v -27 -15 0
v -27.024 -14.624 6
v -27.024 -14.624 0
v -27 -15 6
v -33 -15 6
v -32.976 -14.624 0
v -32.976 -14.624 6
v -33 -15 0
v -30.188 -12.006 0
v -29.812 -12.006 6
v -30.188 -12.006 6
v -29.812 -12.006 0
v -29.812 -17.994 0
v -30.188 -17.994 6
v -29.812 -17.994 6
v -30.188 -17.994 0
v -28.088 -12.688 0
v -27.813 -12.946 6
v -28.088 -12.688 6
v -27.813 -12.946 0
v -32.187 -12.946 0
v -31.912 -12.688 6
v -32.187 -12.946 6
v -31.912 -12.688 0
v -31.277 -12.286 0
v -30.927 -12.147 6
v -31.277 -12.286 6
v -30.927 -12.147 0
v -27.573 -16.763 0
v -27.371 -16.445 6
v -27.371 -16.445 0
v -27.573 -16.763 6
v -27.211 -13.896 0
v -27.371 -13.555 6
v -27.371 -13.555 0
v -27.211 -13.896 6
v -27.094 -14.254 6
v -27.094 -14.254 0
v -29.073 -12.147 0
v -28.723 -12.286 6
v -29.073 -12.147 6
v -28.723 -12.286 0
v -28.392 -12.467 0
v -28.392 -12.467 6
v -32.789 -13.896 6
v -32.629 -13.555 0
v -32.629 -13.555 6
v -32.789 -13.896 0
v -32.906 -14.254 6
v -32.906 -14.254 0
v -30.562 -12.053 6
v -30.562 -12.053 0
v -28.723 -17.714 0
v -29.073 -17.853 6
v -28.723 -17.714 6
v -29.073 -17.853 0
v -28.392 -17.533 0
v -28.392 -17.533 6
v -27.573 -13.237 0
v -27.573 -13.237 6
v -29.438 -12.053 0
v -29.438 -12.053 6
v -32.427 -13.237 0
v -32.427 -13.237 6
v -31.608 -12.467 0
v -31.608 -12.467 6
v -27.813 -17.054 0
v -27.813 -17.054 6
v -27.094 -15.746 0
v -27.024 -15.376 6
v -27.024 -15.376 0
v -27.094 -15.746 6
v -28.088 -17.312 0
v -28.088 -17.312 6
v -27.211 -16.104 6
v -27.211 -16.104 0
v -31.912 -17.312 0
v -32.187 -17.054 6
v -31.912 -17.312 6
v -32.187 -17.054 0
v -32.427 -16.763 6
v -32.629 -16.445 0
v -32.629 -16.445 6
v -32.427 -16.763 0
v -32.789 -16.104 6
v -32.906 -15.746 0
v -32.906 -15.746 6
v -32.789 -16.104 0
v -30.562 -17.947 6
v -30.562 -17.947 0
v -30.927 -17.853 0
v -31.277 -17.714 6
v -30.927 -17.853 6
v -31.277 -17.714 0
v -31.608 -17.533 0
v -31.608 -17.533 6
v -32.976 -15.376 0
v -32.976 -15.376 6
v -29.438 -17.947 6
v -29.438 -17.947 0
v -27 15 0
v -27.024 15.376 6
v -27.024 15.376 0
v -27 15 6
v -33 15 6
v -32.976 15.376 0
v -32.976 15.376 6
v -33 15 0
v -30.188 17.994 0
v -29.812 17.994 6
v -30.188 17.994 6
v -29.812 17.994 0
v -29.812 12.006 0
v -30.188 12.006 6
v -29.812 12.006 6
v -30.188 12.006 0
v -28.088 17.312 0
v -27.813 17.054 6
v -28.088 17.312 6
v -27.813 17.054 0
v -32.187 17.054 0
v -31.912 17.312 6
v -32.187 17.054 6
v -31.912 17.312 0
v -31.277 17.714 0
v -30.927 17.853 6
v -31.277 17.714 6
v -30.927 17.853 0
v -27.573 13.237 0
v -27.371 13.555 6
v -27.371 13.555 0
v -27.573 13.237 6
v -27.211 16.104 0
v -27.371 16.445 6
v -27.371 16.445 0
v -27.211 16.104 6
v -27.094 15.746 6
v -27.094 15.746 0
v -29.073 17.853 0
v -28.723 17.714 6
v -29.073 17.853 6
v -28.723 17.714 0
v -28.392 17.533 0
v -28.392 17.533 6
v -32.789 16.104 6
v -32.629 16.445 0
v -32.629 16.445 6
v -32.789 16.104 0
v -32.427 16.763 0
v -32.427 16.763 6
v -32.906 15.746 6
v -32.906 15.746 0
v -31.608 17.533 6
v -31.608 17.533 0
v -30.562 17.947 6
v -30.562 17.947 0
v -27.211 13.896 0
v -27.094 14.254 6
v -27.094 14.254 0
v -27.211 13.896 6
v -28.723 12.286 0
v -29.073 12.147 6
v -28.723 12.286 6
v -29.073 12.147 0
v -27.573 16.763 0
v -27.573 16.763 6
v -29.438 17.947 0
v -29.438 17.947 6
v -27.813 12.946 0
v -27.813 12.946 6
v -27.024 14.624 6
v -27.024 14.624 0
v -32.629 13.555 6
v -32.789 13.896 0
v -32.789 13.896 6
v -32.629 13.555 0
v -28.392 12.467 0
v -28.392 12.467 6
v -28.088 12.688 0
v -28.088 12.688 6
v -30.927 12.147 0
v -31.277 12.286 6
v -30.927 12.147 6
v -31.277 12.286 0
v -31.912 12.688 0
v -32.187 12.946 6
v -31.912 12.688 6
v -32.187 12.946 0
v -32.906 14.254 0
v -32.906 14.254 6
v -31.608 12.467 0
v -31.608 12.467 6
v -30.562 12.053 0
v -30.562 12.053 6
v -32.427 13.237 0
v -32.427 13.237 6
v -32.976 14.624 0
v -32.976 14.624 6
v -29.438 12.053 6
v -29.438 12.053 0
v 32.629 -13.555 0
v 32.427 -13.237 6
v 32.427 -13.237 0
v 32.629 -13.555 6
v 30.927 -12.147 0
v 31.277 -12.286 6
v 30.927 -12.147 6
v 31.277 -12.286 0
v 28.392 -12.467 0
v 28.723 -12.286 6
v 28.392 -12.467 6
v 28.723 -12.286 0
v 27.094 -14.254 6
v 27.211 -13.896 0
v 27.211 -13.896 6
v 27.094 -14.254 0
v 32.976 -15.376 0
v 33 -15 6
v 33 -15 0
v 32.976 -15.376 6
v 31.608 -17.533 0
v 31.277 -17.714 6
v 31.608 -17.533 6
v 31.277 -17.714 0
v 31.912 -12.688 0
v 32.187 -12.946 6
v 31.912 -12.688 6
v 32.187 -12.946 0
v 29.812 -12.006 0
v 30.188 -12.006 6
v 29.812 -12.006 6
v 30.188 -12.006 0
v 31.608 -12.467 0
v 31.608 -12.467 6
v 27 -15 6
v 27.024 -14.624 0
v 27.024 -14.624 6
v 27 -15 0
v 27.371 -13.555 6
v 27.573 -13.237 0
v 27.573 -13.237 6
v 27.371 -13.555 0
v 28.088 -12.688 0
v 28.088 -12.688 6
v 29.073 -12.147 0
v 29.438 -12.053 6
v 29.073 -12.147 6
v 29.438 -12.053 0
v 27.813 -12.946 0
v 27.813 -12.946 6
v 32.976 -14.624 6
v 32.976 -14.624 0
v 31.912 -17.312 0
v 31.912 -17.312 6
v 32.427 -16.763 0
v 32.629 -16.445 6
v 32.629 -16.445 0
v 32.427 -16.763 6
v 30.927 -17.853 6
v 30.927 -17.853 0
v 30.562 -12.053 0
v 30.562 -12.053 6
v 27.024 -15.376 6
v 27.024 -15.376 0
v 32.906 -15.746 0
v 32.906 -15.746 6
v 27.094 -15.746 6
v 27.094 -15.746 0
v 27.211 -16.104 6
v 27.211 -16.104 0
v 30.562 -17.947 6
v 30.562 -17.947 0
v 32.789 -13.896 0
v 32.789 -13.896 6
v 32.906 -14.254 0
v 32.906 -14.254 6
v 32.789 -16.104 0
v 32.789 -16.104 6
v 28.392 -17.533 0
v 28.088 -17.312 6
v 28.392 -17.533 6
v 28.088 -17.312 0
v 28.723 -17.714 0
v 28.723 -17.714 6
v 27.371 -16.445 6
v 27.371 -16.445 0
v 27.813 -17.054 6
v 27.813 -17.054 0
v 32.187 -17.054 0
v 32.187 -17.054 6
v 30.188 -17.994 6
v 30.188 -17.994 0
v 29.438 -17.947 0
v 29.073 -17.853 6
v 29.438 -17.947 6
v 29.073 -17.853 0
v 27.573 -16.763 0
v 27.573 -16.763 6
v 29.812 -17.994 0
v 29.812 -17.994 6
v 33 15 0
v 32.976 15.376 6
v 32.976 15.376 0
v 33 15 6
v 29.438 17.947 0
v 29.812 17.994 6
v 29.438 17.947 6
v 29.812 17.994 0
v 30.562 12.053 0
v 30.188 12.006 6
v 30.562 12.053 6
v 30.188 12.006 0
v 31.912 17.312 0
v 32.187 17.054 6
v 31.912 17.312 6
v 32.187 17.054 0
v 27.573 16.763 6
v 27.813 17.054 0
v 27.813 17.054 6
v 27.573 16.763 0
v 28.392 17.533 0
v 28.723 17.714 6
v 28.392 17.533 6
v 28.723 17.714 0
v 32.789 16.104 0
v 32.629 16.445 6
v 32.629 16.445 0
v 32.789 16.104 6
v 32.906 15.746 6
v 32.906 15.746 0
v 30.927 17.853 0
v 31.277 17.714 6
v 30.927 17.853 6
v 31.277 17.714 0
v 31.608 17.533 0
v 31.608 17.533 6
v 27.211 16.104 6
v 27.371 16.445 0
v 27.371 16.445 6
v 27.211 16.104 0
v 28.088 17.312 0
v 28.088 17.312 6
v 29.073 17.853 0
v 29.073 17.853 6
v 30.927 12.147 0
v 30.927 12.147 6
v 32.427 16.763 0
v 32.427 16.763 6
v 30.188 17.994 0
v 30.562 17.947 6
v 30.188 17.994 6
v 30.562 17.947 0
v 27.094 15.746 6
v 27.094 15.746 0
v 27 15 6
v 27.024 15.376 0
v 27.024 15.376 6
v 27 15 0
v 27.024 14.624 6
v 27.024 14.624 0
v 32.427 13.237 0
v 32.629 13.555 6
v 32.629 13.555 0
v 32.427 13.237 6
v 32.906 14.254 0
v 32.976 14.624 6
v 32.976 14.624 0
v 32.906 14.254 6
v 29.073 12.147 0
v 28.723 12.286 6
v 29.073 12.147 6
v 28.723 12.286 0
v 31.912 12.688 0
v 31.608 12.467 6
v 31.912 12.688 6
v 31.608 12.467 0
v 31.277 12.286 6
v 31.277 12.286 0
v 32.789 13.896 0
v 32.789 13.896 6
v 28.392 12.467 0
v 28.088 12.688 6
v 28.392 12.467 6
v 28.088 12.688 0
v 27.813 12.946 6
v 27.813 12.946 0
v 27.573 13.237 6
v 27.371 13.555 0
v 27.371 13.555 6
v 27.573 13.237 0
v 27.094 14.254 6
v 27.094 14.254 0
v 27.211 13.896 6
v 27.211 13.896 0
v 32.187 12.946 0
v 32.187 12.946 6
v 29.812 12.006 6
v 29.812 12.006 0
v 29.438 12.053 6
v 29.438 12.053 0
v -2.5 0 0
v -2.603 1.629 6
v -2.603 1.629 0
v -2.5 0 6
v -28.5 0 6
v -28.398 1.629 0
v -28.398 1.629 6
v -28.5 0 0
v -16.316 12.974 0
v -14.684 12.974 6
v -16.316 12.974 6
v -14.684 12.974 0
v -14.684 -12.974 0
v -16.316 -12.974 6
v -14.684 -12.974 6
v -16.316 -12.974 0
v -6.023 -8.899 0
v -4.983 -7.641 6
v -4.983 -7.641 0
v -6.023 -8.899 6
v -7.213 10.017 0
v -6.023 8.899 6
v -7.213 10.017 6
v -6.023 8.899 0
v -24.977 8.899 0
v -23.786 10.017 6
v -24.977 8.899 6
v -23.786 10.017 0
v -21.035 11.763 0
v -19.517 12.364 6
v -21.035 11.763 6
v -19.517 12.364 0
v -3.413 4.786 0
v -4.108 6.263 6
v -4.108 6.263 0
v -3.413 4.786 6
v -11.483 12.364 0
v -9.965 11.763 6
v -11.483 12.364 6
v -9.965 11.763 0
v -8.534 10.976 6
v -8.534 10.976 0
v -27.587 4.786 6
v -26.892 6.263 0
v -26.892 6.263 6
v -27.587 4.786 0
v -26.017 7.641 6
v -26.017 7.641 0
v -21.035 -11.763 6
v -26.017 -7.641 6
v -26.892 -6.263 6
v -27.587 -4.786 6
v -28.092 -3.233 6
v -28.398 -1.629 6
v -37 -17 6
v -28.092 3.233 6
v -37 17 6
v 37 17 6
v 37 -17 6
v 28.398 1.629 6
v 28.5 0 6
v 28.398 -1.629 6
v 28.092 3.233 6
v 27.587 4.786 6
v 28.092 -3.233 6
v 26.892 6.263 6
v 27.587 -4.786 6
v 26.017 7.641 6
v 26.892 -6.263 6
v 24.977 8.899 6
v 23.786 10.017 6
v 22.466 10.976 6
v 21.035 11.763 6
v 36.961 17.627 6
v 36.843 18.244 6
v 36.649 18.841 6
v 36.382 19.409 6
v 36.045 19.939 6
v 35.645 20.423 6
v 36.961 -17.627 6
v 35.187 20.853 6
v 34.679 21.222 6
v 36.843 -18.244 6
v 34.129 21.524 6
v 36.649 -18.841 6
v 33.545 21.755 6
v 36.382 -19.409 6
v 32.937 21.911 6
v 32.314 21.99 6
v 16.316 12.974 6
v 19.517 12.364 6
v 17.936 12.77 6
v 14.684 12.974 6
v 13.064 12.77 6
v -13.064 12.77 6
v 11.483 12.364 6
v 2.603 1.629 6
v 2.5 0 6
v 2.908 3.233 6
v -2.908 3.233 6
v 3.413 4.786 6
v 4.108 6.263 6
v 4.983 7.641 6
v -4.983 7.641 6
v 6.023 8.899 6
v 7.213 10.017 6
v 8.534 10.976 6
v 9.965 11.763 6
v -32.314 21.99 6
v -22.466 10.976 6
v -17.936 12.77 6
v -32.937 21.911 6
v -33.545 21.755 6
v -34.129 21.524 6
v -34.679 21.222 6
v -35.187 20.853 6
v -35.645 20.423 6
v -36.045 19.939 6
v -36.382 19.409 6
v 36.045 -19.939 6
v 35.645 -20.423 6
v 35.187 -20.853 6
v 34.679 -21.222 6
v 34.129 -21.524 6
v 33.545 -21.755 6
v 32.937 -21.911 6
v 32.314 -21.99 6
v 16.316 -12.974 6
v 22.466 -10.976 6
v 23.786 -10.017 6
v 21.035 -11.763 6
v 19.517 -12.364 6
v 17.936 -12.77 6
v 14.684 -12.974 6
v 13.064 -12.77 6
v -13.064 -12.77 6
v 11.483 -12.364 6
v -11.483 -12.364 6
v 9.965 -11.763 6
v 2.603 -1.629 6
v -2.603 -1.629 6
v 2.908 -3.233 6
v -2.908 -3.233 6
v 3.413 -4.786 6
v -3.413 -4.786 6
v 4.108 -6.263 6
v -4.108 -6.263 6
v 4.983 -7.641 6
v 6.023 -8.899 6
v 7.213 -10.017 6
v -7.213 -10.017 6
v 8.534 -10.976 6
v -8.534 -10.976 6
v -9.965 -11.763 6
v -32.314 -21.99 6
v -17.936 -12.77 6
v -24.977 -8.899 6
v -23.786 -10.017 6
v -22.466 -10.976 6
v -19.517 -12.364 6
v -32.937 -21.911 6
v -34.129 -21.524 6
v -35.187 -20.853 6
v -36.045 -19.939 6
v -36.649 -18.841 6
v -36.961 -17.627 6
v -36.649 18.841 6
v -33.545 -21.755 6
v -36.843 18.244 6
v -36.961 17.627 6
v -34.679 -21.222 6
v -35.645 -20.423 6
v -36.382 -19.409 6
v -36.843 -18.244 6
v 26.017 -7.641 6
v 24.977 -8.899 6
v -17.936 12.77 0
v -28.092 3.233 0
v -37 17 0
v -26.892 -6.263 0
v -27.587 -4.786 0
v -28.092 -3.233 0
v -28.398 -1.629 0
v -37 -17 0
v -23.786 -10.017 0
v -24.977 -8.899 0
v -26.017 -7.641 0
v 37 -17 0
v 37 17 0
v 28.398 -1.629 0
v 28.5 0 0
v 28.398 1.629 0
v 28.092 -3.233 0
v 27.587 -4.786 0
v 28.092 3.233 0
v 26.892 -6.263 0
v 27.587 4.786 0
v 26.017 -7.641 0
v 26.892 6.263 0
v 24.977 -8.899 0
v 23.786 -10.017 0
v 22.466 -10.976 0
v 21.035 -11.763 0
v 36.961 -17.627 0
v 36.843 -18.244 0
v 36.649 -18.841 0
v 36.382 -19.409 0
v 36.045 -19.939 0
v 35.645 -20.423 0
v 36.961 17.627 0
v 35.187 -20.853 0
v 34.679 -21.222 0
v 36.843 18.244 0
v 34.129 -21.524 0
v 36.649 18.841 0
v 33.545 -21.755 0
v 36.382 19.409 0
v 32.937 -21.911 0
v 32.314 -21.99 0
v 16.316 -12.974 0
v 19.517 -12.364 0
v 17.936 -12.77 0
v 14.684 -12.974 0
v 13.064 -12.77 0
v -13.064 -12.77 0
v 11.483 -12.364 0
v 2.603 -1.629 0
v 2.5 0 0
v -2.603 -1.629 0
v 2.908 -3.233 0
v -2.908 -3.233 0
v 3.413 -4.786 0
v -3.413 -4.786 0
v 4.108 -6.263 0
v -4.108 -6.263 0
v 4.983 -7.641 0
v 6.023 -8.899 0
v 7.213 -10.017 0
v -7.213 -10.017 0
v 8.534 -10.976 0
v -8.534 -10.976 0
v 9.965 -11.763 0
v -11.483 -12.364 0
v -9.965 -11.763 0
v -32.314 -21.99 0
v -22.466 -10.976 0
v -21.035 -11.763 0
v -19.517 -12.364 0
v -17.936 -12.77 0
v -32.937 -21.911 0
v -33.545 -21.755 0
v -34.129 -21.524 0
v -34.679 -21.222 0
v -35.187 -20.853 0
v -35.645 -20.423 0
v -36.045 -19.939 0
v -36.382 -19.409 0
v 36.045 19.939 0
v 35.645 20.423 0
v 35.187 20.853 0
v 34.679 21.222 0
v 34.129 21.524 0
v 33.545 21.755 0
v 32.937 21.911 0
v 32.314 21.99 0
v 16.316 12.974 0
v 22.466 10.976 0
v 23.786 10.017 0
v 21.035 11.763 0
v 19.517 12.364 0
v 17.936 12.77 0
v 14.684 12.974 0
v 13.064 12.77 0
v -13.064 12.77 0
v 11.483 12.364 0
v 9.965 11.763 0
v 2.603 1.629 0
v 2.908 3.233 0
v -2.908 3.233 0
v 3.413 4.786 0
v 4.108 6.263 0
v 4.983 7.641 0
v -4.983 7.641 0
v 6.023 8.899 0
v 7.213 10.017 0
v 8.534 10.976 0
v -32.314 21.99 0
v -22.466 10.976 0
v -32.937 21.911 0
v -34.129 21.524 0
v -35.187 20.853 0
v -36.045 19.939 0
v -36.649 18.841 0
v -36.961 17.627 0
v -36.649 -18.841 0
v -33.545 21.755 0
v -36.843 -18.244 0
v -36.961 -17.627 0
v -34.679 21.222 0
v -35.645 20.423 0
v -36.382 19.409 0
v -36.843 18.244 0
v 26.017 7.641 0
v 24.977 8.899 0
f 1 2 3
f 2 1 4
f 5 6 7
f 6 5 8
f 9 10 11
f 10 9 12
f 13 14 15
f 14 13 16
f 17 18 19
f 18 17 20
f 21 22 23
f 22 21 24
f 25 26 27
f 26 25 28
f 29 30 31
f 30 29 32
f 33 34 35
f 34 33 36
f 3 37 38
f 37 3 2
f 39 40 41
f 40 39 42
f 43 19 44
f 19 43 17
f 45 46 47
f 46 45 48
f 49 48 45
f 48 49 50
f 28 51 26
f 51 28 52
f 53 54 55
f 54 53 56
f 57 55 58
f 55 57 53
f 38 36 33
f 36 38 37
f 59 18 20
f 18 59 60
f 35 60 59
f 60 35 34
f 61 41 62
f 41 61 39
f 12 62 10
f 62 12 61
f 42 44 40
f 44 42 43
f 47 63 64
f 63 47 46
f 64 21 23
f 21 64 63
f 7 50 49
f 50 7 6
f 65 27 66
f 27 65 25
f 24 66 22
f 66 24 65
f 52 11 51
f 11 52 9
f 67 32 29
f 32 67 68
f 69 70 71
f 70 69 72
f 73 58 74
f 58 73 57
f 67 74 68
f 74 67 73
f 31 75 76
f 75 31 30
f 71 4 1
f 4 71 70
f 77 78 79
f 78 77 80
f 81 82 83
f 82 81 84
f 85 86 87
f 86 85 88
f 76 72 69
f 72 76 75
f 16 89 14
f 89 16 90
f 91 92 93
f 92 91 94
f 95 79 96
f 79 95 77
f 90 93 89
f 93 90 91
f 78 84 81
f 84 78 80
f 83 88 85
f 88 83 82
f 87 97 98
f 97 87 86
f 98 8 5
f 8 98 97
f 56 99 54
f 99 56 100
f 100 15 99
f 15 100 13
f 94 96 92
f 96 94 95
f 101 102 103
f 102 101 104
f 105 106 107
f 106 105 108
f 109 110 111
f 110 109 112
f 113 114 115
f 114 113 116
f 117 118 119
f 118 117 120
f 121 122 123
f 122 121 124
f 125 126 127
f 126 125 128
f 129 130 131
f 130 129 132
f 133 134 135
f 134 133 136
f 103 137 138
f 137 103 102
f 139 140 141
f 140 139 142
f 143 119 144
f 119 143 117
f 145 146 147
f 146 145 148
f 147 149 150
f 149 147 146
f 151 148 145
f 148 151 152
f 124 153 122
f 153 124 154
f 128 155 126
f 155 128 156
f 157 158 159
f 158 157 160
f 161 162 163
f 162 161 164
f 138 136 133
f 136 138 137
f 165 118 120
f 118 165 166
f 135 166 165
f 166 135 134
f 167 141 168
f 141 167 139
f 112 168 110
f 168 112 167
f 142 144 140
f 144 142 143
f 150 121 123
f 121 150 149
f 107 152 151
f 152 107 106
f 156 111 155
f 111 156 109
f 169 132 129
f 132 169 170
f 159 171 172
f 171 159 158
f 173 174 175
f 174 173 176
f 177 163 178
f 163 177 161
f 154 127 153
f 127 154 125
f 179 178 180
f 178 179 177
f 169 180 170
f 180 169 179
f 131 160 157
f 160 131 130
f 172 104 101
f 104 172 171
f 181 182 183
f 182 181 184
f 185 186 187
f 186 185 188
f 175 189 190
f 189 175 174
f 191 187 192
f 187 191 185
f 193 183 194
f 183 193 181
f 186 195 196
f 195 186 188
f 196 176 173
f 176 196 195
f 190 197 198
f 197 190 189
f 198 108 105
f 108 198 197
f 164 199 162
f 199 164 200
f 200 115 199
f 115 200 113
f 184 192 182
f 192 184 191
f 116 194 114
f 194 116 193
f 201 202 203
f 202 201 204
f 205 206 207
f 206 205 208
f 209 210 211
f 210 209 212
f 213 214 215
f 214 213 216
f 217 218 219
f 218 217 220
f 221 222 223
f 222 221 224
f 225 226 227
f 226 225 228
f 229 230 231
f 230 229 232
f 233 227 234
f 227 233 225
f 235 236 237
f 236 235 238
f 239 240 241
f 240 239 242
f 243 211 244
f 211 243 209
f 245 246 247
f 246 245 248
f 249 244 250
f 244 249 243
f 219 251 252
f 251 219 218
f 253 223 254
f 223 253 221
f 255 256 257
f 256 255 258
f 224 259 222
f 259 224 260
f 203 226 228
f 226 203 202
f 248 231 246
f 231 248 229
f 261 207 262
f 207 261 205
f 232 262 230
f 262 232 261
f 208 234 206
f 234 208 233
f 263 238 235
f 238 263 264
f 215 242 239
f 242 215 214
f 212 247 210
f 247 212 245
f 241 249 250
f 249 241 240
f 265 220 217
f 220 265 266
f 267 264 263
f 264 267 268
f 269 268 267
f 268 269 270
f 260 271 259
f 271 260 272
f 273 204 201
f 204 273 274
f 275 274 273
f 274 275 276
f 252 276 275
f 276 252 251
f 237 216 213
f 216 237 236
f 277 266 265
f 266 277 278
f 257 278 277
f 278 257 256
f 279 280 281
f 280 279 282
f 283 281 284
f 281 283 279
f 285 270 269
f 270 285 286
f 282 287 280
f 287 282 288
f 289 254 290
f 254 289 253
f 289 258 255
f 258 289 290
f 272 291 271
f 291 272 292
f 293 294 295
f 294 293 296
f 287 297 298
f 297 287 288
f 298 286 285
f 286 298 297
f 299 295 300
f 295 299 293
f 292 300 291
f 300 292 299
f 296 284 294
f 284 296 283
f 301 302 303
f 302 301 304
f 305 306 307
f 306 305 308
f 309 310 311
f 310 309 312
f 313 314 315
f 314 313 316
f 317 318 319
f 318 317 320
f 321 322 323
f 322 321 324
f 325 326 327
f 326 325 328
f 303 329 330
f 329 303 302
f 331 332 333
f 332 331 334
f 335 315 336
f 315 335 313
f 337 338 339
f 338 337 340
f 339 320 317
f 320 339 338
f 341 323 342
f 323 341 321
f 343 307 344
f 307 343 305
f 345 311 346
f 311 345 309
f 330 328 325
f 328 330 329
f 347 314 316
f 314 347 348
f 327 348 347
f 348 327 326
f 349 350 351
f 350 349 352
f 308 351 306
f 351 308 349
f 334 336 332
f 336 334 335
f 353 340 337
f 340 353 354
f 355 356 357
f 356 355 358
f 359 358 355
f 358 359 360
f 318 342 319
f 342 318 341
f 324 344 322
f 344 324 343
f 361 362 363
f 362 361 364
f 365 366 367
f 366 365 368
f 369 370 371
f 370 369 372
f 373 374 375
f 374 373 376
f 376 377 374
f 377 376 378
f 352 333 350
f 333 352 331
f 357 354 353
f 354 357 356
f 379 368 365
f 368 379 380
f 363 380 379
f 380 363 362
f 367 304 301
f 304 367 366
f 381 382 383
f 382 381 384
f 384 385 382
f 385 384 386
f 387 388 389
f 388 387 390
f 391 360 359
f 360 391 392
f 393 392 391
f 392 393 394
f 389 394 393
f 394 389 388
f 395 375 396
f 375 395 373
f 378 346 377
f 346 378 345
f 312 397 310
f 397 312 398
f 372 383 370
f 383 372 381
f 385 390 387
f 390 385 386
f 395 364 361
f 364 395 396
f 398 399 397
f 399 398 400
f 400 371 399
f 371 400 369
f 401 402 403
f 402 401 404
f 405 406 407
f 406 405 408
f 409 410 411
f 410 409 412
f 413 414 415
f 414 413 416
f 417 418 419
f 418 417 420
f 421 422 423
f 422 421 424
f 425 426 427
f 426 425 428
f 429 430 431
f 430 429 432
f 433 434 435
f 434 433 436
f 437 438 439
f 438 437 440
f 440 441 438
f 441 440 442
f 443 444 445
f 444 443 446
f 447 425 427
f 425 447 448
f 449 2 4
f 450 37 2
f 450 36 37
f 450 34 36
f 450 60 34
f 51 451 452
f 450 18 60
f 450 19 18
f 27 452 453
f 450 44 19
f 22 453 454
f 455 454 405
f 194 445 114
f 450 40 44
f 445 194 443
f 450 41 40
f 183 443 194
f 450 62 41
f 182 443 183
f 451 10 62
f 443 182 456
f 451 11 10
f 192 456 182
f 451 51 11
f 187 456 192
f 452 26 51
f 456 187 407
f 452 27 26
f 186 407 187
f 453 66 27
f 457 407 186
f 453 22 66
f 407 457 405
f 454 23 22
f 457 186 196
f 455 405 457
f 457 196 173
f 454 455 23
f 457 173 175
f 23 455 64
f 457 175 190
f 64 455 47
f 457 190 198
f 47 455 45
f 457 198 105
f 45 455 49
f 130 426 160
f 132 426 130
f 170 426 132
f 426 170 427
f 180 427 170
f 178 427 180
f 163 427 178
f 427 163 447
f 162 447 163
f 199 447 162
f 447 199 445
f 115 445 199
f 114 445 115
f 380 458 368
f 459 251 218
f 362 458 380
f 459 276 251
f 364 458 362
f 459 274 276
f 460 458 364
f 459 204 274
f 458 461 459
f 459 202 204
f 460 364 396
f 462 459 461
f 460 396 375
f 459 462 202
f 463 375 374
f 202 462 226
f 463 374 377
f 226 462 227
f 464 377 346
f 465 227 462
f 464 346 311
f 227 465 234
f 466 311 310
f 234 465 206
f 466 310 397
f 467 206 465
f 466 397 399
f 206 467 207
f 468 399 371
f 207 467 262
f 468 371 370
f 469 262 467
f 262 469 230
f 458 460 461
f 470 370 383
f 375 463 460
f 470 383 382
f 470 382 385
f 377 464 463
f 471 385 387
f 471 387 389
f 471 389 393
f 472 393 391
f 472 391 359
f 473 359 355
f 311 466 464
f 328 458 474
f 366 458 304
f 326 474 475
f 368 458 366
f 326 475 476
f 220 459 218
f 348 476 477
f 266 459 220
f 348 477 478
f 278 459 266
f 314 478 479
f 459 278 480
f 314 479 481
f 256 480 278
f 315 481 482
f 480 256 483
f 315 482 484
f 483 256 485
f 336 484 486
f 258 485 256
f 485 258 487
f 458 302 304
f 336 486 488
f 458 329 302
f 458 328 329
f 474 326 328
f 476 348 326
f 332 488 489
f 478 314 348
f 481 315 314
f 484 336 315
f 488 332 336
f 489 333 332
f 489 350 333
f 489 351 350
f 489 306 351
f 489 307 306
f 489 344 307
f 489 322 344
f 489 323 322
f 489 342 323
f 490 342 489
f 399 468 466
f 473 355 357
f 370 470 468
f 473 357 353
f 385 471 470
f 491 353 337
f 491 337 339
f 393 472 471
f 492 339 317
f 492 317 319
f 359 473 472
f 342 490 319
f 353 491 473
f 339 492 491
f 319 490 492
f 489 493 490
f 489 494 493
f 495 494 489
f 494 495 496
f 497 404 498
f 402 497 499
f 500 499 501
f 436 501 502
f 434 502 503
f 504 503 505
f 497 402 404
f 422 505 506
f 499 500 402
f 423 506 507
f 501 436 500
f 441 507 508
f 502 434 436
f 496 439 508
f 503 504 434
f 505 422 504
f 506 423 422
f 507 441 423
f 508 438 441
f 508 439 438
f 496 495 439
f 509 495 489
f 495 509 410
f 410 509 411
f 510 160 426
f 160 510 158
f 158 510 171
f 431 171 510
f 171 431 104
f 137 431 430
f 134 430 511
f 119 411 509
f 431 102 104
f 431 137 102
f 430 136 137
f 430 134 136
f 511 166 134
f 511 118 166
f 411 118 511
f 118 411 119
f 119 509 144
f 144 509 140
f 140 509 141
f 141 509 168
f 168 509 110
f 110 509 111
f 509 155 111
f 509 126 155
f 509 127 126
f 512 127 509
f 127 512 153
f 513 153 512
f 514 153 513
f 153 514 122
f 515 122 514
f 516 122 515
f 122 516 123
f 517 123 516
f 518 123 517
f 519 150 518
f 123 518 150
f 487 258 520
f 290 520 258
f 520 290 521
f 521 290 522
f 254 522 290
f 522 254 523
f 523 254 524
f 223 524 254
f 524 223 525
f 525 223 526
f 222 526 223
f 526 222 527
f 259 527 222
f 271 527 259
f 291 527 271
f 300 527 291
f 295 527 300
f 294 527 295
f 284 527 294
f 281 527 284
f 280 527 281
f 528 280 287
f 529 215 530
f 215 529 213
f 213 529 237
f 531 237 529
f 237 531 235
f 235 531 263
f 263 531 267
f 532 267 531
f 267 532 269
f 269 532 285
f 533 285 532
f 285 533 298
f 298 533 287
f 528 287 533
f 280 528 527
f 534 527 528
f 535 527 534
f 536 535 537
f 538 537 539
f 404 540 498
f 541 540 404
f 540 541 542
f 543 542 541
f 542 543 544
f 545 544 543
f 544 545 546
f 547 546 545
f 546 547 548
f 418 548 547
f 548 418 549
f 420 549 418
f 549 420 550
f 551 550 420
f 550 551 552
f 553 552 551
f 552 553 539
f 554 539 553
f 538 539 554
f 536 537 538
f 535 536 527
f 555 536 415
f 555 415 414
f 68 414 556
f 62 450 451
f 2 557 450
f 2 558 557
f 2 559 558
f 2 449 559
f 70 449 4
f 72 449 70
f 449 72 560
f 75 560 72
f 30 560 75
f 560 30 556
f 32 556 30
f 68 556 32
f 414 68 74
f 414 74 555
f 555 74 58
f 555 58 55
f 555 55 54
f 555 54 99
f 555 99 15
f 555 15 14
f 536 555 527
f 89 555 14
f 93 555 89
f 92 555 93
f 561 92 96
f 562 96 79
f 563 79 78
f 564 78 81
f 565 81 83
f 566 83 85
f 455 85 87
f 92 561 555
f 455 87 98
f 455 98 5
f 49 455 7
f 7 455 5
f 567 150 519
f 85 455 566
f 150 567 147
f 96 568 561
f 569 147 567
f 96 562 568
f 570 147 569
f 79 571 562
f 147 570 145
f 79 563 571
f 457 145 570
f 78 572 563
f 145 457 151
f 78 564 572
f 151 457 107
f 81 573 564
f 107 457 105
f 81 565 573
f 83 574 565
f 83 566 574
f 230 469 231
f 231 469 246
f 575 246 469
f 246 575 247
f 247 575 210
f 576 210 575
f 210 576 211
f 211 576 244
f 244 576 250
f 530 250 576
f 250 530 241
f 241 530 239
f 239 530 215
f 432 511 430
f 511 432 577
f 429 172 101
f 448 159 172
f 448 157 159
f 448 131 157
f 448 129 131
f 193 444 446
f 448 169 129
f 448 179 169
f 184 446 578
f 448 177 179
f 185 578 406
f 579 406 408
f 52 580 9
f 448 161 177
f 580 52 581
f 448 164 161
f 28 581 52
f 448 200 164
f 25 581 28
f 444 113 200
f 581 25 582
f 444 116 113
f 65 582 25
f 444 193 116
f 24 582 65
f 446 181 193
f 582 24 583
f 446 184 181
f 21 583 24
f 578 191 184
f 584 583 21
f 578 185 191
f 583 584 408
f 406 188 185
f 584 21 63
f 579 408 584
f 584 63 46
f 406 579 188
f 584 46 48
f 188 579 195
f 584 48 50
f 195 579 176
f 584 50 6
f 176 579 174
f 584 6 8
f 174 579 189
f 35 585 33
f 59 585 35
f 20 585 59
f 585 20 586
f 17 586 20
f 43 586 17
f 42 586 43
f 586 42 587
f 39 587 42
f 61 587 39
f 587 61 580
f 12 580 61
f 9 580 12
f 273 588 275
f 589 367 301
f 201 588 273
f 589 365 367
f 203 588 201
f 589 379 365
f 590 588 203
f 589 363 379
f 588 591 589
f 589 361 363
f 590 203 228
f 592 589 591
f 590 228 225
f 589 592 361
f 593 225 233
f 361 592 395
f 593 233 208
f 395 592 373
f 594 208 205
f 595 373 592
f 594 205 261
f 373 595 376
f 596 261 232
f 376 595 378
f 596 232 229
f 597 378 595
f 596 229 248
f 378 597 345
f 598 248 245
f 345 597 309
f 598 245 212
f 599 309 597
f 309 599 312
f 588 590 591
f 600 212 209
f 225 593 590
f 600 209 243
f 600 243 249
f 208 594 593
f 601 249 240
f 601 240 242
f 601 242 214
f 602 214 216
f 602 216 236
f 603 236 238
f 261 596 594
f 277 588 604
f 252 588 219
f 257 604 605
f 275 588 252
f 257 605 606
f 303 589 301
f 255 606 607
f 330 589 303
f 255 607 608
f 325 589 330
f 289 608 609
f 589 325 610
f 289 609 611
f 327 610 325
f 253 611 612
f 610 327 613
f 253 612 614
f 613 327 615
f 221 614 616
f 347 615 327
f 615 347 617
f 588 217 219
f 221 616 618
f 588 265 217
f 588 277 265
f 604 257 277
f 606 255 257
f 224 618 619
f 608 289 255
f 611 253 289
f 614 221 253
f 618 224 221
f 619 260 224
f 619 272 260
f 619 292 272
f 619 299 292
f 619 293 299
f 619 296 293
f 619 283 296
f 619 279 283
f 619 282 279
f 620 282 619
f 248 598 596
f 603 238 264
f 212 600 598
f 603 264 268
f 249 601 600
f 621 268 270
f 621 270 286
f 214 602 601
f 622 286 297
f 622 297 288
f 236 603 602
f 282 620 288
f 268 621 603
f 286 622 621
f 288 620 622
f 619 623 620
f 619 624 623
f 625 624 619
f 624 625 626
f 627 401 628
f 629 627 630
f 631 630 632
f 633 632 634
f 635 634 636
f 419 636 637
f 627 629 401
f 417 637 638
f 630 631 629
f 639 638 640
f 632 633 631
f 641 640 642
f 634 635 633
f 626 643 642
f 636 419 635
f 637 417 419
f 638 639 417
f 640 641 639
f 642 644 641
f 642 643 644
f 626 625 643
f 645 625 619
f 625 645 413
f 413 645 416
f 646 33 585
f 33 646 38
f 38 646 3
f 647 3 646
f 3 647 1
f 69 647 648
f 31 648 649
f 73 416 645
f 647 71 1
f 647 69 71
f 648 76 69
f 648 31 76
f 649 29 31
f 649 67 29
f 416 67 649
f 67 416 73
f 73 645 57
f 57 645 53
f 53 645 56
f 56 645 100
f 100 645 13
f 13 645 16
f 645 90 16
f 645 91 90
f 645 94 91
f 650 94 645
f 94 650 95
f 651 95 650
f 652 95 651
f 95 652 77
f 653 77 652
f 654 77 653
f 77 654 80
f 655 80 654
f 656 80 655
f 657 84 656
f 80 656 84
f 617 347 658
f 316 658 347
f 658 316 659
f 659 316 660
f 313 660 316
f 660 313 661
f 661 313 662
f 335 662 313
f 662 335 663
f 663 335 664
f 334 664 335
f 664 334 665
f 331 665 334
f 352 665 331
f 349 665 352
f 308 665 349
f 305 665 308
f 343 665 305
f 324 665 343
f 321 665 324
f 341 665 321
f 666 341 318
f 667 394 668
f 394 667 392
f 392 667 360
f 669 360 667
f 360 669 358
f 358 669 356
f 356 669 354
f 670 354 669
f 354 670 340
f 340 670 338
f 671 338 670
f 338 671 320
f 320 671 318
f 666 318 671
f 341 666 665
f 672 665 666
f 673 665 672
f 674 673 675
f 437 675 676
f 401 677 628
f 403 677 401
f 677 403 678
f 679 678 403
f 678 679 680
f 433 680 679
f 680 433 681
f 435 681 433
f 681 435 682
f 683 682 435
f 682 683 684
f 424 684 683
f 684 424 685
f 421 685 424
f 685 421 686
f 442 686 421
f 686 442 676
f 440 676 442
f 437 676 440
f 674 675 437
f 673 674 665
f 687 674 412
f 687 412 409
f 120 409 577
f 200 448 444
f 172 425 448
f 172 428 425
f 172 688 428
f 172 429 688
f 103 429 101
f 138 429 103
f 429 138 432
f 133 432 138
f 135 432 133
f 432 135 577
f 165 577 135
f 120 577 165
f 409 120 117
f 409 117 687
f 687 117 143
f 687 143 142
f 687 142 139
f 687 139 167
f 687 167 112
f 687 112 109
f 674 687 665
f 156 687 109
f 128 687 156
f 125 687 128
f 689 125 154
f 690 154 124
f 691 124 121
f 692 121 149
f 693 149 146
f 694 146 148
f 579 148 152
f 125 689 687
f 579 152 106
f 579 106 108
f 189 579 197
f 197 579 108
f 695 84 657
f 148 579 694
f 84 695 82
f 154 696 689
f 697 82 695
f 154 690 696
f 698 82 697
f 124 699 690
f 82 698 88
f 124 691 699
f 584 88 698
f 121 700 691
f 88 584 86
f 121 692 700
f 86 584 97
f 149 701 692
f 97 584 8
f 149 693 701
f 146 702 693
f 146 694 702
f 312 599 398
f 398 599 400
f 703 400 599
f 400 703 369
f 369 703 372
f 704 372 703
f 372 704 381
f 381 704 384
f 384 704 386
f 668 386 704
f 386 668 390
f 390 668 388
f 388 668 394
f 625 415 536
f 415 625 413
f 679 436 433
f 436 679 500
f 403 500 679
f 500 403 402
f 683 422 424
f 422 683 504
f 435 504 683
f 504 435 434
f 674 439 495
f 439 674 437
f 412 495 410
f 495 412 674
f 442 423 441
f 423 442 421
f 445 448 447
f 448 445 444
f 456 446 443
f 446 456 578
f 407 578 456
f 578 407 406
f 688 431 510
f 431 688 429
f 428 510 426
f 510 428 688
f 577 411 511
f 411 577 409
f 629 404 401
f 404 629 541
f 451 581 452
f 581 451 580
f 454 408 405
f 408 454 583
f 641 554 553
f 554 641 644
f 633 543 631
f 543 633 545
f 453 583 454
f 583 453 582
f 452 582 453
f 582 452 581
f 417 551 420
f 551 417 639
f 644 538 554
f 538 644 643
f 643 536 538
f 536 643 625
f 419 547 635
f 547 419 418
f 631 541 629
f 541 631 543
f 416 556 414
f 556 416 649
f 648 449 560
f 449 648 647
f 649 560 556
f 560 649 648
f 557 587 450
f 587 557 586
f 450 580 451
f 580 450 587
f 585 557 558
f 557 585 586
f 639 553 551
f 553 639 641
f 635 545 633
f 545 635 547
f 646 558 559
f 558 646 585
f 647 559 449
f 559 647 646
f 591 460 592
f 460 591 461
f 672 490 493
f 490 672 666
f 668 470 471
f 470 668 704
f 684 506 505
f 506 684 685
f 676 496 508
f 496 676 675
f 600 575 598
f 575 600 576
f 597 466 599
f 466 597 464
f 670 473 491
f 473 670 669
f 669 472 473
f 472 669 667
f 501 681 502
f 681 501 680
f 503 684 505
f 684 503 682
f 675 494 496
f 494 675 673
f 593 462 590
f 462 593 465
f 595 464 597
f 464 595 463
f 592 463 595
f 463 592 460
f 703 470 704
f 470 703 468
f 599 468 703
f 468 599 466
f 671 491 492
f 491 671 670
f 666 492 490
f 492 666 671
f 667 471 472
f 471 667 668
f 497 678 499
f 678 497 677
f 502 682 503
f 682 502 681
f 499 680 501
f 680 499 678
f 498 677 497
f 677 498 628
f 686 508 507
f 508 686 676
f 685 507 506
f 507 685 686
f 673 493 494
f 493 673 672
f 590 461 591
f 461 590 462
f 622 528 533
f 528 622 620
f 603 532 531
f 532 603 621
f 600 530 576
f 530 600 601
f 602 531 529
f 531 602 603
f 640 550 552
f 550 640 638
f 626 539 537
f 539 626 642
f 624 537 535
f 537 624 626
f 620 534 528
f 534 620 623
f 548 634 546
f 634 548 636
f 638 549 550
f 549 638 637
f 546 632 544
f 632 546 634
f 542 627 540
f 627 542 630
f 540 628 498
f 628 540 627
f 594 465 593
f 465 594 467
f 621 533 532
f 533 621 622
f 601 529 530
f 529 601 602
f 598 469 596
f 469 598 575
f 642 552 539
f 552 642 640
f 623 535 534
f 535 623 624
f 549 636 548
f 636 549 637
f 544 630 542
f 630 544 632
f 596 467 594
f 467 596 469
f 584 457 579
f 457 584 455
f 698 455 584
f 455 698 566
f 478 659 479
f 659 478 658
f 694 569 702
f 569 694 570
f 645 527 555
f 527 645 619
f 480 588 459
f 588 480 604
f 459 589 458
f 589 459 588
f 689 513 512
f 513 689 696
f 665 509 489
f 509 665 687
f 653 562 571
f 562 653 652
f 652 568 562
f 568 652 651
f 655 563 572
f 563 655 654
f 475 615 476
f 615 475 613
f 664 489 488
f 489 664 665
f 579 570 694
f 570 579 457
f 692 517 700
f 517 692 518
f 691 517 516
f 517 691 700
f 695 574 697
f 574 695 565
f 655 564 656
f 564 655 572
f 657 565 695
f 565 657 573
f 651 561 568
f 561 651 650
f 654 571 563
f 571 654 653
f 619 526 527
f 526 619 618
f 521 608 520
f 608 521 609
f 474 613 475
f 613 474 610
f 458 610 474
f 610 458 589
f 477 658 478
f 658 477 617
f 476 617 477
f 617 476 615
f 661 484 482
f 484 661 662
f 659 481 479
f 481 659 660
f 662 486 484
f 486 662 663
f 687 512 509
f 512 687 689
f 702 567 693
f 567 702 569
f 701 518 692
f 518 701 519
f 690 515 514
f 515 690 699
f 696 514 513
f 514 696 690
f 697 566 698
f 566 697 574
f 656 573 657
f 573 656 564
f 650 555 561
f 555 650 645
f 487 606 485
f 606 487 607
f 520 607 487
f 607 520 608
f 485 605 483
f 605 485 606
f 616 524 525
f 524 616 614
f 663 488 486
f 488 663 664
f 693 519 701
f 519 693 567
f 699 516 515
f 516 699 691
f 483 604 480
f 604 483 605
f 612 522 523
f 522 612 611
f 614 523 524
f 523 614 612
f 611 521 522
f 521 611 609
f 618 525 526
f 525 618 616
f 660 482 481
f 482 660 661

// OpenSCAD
$fn = 50;


difference() {
	union() {
		hull() {
			translate(v = [-32.0000000000, 17.0000000000, 0]) {
				cylinder(h = 6, r = 5);
			}
			translate(v = [32.0000000000, 17.0000000000, 0]) {
				cylinder(h = 6, r = 5);
			}
			translate(v = [-32.0000000000, -17.0000000000, 0]) {
				cylinder(h = 6, r = 5);
			}
			translate(v = [32.0000000000, -17.0000000000, 0]) {
				cylinder(h = 6, r = 5);
			}
		}
	}
	union() {
		#translate(v = [-30.0000000000, -15.0000000000, -100.0000000000]) {
			cylinder(h = 200, r = 3.0000000000);
		}
		#translate(v = [-30.0000000000, 15.0000000000, -100.0000000000]) {
			cylinder(h = 200, r = 3.0000000000);
		}
		#translate(v = [30.0000000000, -15.0000000000, -100.0000000000]) {
			cylinder(h = 200, r = 3.0000000000);
		}
		#translate(v = [30.0000000000, 15.0000000000, -100.0000000000]) {
			cylinder(h = 200, r = 3.0000000000);
		}
		#translate(v = [-15.5000000000, 0, 0]) {
			cylinder(h = 6, r = 13.0000000000);
		}
		#translate(v = [15.5000000000, 0, 0]) {
			cylinder(h = 6, r = 13.0000000000);
		}
	}
}
